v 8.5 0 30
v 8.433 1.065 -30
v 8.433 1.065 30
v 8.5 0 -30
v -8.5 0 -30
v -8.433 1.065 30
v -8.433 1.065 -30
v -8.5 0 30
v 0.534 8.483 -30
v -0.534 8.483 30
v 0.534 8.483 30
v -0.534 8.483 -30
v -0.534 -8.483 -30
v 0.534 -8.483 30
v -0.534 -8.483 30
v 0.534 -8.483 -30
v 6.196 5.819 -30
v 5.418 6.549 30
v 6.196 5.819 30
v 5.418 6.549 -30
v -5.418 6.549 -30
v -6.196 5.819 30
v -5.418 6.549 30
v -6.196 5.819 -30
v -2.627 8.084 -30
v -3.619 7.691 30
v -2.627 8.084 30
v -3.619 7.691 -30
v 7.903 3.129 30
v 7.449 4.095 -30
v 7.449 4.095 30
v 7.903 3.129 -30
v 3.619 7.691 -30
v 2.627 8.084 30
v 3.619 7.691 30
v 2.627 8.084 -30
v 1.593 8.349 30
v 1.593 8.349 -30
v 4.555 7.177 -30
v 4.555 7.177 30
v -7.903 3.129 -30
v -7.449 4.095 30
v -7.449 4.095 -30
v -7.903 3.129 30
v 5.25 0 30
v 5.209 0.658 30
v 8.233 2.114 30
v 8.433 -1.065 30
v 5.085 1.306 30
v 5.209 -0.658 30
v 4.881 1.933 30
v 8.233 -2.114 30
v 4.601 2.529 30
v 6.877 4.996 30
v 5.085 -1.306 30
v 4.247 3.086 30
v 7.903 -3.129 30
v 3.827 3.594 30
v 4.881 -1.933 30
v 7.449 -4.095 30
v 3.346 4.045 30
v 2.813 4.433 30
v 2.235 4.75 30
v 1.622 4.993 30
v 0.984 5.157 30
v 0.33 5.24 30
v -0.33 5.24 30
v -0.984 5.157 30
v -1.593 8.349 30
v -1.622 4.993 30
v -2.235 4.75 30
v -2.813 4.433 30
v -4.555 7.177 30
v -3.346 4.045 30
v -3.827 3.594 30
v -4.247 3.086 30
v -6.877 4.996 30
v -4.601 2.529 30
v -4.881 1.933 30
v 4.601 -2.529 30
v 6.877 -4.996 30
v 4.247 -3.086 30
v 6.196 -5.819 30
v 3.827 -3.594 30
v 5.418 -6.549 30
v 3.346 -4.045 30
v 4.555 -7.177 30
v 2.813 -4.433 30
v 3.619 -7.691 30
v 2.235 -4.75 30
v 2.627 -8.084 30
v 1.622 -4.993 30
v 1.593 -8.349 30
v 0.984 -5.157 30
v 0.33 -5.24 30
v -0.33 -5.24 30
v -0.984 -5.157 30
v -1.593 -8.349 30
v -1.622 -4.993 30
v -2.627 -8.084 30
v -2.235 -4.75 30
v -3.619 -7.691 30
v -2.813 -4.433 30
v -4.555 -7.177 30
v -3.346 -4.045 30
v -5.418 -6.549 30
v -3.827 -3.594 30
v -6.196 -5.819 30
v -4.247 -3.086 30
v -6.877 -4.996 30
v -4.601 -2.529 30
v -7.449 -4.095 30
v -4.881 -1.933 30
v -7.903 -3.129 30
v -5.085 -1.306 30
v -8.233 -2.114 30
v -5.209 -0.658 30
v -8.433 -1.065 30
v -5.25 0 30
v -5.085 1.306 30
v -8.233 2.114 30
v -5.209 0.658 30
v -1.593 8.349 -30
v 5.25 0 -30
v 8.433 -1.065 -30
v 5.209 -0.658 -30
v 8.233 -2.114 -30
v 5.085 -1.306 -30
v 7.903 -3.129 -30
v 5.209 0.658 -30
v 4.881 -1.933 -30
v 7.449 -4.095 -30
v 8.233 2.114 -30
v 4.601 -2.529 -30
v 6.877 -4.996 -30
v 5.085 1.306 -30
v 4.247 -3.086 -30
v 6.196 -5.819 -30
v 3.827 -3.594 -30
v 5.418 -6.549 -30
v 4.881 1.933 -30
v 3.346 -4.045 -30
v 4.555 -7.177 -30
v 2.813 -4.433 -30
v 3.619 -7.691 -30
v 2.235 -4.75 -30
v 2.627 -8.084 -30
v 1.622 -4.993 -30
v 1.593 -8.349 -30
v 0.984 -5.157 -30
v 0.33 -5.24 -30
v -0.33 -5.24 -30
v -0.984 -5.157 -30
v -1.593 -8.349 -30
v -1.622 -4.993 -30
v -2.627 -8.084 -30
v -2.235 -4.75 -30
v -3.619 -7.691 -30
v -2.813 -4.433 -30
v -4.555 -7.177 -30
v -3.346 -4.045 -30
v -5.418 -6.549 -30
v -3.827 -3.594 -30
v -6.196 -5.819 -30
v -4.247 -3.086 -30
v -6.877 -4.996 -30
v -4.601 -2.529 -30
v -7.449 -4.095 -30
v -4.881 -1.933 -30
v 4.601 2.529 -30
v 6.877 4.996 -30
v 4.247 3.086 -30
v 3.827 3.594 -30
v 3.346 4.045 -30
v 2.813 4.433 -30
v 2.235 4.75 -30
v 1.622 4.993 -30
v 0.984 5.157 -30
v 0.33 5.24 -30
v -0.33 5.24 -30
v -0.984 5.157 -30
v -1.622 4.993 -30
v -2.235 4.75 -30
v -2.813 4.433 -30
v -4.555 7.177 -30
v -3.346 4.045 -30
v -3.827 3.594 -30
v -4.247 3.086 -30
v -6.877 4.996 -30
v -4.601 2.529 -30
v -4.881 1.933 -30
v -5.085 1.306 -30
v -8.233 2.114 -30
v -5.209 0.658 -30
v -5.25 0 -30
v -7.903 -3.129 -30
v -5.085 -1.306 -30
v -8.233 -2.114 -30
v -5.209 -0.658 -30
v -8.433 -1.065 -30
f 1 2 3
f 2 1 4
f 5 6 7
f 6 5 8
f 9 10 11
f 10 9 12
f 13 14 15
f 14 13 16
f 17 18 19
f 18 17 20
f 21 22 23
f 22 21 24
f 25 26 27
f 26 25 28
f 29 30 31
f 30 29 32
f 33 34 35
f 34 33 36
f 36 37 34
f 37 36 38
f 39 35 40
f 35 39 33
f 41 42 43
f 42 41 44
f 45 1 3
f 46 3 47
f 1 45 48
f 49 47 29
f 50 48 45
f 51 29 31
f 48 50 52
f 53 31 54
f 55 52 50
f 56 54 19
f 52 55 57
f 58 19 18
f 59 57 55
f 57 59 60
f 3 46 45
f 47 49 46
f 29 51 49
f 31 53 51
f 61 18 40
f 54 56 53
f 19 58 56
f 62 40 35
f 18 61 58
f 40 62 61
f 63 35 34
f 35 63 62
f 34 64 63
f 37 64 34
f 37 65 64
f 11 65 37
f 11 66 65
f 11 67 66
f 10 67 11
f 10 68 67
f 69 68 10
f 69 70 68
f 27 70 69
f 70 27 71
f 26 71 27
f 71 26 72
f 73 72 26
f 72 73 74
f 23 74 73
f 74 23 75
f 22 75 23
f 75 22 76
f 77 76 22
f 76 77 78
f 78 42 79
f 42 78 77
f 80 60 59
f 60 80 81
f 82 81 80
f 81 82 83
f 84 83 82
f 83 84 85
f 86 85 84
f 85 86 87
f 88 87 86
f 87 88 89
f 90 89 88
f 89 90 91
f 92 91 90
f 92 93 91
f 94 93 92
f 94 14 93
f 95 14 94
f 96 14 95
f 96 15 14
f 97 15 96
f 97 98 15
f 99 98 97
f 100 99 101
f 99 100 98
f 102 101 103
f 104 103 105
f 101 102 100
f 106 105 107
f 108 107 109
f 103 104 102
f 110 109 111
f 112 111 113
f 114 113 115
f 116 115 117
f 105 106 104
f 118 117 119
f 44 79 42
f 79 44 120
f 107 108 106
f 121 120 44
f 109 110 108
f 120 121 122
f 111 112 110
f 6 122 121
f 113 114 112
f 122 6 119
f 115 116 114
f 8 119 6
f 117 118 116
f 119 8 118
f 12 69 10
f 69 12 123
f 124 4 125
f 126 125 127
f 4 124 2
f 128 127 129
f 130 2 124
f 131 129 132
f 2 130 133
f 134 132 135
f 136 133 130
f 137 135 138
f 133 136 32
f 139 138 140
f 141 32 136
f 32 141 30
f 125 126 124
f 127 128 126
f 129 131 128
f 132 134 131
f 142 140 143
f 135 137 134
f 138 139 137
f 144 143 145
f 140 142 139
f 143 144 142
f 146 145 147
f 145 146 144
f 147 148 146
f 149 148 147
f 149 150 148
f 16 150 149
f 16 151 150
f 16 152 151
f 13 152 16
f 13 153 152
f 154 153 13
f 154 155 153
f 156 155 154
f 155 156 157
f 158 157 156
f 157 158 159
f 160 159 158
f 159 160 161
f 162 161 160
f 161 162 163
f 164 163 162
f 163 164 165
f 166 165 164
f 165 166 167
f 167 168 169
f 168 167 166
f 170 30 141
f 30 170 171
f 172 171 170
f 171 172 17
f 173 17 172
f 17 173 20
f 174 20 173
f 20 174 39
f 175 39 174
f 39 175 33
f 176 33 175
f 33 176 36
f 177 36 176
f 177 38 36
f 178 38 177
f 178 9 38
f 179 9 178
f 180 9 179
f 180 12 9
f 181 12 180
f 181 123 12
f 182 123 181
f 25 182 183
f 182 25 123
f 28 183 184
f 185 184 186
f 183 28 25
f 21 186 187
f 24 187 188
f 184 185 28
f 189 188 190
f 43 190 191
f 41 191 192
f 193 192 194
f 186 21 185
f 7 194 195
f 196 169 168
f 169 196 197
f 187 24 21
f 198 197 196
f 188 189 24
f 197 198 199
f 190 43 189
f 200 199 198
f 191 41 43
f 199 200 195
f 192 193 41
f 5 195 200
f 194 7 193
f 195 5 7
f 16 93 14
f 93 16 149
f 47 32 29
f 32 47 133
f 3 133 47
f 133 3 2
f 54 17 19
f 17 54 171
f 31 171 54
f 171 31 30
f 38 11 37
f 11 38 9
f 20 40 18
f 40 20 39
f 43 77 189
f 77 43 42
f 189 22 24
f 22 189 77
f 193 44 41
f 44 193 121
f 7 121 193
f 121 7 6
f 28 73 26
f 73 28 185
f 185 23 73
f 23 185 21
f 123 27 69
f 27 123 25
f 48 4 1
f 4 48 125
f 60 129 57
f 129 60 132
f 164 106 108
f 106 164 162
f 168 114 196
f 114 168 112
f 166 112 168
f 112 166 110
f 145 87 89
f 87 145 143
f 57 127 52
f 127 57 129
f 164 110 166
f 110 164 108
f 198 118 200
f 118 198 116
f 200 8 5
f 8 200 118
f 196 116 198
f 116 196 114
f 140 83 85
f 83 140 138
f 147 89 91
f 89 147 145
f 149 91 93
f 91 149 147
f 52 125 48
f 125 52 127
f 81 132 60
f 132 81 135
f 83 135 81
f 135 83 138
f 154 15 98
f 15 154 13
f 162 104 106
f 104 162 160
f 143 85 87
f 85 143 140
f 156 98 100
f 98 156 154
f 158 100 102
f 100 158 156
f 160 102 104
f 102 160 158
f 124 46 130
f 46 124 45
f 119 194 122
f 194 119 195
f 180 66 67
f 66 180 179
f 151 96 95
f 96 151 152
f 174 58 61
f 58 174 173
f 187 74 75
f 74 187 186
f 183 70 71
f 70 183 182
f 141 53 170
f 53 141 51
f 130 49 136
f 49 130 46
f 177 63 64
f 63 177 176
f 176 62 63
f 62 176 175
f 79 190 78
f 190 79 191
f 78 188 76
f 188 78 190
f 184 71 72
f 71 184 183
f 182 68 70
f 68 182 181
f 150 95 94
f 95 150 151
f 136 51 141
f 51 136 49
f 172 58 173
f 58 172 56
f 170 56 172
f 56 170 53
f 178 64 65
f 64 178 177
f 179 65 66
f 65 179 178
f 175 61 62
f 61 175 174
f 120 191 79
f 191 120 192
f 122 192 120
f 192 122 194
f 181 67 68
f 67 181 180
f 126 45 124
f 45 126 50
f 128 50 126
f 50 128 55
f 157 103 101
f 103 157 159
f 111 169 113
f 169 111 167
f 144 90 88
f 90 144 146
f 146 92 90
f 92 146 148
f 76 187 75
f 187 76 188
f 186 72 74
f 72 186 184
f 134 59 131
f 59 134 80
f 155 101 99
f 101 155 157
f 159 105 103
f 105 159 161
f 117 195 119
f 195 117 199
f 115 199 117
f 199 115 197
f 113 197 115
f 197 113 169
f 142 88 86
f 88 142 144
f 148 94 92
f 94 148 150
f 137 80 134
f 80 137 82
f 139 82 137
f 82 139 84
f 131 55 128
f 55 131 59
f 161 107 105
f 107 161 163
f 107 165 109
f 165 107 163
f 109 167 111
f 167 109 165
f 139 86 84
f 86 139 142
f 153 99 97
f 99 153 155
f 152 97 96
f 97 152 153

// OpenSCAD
$fn = 50;


difference() {
	union() {
		translate(v = [0, 0, -30.0000000000]) {
			cylinder(h = 60, r = 8.5000000000);
		}
	}
	union() {
		translate(v = [0, 0, -100.0000000000]) {
			cylinder(h = 200, r = 5.2500000000);
		}
	}
}
